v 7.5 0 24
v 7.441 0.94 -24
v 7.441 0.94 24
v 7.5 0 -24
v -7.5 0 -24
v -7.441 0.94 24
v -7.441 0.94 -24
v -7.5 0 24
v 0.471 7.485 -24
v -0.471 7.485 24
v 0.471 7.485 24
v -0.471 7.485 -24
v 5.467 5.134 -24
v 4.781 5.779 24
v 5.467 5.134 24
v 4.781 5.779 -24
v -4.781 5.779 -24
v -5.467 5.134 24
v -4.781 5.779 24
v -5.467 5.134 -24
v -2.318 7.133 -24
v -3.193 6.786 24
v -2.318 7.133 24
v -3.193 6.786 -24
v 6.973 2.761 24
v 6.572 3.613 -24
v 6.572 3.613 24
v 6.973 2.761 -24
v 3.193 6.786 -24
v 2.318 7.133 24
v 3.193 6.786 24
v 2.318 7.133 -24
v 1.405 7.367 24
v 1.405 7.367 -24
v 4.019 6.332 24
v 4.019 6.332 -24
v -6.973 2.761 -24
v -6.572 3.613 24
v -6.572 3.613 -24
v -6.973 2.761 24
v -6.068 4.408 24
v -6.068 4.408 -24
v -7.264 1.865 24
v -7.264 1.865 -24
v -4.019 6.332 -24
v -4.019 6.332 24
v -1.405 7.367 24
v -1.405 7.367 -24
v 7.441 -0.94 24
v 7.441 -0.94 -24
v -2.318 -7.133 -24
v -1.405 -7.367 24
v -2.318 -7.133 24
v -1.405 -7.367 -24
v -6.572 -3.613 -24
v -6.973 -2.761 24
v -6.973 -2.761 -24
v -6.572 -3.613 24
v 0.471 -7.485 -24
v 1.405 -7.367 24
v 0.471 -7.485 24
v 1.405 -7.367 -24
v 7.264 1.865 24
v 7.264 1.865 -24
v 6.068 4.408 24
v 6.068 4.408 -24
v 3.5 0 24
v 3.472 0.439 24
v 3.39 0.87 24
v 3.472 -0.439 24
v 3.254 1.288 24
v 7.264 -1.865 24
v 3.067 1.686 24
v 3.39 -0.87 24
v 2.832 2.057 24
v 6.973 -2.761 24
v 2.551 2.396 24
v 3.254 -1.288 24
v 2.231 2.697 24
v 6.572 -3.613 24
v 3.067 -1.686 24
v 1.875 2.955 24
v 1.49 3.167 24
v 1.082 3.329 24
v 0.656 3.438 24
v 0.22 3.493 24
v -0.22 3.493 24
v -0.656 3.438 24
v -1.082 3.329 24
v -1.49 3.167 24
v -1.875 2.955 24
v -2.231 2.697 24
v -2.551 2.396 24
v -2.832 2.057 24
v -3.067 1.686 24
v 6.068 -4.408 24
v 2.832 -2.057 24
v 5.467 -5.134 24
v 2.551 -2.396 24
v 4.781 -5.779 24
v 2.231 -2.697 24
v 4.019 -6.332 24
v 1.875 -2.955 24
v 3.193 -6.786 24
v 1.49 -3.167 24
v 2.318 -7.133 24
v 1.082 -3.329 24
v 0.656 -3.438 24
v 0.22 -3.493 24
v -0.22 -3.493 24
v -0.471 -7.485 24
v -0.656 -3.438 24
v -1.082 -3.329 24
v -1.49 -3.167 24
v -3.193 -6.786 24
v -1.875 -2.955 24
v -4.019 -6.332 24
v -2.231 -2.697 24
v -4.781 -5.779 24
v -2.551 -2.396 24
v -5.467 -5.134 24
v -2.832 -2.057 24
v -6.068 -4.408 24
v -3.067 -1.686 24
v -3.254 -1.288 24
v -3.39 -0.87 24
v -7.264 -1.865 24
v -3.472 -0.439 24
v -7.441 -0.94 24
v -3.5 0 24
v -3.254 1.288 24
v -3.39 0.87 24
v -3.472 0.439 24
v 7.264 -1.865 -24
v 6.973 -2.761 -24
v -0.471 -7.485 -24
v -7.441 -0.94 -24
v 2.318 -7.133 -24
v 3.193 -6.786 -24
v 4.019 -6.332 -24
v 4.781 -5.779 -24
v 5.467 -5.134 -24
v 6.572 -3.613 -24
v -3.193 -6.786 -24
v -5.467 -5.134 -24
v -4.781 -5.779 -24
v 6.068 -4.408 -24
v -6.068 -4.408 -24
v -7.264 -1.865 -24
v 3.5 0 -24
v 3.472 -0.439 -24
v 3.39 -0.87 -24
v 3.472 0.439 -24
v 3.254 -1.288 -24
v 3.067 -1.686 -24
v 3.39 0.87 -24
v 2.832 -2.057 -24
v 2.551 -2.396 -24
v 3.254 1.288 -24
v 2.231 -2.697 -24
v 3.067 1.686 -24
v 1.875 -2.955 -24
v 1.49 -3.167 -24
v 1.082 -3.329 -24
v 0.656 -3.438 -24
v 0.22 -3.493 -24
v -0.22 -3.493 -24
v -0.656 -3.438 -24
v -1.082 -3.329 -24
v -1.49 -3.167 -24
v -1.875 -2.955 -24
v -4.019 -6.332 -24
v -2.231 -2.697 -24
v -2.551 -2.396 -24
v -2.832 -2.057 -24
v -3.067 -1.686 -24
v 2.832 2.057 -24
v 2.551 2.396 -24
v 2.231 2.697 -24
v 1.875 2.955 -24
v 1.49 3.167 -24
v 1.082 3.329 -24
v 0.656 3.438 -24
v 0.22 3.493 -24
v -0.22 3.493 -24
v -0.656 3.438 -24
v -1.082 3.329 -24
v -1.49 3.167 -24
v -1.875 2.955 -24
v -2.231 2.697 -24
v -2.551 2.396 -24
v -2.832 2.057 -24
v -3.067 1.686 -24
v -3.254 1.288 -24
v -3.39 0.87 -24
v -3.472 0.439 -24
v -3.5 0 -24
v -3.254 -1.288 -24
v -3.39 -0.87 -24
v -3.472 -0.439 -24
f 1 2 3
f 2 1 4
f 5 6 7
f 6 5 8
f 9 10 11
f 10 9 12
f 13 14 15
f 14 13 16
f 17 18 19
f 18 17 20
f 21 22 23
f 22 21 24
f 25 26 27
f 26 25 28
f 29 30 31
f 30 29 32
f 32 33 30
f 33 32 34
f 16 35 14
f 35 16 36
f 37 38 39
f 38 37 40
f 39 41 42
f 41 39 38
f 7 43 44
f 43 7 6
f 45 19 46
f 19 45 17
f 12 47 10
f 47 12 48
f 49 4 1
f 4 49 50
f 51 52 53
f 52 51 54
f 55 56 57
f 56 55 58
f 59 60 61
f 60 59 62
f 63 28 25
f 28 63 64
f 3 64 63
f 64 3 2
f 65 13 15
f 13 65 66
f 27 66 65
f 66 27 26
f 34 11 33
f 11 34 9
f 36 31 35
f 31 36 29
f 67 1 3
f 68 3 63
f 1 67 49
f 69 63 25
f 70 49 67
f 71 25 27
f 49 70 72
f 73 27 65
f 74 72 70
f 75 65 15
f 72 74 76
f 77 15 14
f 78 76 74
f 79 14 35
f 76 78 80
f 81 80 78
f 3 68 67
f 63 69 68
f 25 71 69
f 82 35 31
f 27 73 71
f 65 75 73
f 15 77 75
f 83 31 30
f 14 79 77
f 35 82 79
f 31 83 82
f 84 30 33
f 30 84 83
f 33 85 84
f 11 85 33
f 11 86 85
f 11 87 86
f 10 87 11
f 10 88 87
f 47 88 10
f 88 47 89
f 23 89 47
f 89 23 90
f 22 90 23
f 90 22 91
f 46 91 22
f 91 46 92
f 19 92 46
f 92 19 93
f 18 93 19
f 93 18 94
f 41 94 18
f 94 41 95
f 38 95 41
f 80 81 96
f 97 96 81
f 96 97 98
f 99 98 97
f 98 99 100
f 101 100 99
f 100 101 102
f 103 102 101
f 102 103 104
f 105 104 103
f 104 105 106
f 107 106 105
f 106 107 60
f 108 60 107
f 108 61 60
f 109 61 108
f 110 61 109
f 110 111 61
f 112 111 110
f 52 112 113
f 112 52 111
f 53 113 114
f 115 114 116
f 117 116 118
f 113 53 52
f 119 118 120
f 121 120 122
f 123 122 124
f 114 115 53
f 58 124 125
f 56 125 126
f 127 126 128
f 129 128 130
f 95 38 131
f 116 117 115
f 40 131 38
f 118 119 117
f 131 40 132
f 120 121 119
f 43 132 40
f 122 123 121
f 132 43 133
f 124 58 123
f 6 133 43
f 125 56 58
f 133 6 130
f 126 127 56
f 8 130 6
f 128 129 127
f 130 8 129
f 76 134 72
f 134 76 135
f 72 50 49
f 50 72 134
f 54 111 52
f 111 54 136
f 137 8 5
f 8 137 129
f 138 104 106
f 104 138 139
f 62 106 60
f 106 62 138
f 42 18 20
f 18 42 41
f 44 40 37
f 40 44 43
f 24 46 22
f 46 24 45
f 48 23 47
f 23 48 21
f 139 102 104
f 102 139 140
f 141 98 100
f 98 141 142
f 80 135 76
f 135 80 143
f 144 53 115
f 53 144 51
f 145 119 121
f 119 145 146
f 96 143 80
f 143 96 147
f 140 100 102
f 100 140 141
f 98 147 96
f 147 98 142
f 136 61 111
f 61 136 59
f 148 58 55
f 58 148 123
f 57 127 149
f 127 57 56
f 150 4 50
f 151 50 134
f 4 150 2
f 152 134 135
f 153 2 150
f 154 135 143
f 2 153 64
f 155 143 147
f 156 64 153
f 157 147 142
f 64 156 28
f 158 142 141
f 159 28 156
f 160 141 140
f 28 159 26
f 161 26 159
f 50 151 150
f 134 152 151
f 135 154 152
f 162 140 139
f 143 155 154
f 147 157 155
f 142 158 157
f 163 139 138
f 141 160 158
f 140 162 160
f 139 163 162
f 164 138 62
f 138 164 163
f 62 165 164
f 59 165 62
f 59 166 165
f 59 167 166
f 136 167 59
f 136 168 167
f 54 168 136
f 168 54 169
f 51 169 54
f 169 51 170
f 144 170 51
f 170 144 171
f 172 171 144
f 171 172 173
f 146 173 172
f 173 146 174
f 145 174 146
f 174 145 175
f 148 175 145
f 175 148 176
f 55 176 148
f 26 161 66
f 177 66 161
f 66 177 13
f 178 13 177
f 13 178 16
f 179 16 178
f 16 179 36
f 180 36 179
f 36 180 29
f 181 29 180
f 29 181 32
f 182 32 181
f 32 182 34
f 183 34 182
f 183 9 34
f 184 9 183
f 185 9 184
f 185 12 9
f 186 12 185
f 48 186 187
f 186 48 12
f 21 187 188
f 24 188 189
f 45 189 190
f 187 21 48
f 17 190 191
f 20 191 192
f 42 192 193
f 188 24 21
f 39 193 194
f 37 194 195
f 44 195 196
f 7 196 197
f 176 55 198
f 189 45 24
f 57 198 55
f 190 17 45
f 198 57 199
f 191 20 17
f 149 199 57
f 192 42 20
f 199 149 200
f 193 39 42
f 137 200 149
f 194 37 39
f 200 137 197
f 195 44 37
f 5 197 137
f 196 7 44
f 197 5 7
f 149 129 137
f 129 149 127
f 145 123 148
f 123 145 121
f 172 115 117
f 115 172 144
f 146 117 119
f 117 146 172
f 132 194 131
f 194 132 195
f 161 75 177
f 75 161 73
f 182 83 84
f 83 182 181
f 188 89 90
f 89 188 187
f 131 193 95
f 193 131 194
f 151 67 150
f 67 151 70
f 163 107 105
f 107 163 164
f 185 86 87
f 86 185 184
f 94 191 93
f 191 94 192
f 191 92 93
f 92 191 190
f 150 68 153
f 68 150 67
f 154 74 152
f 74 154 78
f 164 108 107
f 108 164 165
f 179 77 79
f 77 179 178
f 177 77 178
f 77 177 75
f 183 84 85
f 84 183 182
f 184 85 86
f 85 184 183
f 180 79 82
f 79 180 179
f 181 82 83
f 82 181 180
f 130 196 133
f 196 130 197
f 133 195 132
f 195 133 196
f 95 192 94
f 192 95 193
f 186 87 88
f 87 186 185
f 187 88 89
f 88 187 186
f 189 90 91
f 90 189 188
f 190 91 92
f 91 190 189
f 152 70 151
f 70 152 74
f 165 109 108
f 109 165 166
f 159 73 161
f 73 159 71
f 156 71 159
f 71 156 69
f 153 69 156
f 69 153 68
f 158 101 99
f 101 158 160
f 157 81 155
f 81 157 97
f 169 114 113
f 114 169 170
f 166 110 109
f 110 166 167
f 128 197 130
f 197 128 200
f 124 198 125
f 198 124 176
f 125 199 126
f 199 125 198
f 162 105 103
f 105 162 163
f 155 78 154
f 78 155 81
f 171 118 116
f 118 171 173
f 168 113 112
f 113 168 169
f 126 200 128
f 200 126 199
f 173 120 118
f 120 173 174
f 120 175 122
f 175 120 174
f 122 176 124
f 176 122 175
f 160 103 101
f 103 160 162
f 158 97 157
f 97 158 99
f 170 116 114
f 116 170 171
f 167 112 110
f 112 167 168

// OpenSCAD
$fn = 50;


difference() {
	union() {
		translate(v = [0, 0, -24.0000000000]) {
			cylinder(h = 48, r = 7.5000000000);
		}
	}
	union() {
		translate(v = [0, 0, -100.0000000000]) {
			cylinder(h = 200, r = 3.5000000000);
		}
	}
}
